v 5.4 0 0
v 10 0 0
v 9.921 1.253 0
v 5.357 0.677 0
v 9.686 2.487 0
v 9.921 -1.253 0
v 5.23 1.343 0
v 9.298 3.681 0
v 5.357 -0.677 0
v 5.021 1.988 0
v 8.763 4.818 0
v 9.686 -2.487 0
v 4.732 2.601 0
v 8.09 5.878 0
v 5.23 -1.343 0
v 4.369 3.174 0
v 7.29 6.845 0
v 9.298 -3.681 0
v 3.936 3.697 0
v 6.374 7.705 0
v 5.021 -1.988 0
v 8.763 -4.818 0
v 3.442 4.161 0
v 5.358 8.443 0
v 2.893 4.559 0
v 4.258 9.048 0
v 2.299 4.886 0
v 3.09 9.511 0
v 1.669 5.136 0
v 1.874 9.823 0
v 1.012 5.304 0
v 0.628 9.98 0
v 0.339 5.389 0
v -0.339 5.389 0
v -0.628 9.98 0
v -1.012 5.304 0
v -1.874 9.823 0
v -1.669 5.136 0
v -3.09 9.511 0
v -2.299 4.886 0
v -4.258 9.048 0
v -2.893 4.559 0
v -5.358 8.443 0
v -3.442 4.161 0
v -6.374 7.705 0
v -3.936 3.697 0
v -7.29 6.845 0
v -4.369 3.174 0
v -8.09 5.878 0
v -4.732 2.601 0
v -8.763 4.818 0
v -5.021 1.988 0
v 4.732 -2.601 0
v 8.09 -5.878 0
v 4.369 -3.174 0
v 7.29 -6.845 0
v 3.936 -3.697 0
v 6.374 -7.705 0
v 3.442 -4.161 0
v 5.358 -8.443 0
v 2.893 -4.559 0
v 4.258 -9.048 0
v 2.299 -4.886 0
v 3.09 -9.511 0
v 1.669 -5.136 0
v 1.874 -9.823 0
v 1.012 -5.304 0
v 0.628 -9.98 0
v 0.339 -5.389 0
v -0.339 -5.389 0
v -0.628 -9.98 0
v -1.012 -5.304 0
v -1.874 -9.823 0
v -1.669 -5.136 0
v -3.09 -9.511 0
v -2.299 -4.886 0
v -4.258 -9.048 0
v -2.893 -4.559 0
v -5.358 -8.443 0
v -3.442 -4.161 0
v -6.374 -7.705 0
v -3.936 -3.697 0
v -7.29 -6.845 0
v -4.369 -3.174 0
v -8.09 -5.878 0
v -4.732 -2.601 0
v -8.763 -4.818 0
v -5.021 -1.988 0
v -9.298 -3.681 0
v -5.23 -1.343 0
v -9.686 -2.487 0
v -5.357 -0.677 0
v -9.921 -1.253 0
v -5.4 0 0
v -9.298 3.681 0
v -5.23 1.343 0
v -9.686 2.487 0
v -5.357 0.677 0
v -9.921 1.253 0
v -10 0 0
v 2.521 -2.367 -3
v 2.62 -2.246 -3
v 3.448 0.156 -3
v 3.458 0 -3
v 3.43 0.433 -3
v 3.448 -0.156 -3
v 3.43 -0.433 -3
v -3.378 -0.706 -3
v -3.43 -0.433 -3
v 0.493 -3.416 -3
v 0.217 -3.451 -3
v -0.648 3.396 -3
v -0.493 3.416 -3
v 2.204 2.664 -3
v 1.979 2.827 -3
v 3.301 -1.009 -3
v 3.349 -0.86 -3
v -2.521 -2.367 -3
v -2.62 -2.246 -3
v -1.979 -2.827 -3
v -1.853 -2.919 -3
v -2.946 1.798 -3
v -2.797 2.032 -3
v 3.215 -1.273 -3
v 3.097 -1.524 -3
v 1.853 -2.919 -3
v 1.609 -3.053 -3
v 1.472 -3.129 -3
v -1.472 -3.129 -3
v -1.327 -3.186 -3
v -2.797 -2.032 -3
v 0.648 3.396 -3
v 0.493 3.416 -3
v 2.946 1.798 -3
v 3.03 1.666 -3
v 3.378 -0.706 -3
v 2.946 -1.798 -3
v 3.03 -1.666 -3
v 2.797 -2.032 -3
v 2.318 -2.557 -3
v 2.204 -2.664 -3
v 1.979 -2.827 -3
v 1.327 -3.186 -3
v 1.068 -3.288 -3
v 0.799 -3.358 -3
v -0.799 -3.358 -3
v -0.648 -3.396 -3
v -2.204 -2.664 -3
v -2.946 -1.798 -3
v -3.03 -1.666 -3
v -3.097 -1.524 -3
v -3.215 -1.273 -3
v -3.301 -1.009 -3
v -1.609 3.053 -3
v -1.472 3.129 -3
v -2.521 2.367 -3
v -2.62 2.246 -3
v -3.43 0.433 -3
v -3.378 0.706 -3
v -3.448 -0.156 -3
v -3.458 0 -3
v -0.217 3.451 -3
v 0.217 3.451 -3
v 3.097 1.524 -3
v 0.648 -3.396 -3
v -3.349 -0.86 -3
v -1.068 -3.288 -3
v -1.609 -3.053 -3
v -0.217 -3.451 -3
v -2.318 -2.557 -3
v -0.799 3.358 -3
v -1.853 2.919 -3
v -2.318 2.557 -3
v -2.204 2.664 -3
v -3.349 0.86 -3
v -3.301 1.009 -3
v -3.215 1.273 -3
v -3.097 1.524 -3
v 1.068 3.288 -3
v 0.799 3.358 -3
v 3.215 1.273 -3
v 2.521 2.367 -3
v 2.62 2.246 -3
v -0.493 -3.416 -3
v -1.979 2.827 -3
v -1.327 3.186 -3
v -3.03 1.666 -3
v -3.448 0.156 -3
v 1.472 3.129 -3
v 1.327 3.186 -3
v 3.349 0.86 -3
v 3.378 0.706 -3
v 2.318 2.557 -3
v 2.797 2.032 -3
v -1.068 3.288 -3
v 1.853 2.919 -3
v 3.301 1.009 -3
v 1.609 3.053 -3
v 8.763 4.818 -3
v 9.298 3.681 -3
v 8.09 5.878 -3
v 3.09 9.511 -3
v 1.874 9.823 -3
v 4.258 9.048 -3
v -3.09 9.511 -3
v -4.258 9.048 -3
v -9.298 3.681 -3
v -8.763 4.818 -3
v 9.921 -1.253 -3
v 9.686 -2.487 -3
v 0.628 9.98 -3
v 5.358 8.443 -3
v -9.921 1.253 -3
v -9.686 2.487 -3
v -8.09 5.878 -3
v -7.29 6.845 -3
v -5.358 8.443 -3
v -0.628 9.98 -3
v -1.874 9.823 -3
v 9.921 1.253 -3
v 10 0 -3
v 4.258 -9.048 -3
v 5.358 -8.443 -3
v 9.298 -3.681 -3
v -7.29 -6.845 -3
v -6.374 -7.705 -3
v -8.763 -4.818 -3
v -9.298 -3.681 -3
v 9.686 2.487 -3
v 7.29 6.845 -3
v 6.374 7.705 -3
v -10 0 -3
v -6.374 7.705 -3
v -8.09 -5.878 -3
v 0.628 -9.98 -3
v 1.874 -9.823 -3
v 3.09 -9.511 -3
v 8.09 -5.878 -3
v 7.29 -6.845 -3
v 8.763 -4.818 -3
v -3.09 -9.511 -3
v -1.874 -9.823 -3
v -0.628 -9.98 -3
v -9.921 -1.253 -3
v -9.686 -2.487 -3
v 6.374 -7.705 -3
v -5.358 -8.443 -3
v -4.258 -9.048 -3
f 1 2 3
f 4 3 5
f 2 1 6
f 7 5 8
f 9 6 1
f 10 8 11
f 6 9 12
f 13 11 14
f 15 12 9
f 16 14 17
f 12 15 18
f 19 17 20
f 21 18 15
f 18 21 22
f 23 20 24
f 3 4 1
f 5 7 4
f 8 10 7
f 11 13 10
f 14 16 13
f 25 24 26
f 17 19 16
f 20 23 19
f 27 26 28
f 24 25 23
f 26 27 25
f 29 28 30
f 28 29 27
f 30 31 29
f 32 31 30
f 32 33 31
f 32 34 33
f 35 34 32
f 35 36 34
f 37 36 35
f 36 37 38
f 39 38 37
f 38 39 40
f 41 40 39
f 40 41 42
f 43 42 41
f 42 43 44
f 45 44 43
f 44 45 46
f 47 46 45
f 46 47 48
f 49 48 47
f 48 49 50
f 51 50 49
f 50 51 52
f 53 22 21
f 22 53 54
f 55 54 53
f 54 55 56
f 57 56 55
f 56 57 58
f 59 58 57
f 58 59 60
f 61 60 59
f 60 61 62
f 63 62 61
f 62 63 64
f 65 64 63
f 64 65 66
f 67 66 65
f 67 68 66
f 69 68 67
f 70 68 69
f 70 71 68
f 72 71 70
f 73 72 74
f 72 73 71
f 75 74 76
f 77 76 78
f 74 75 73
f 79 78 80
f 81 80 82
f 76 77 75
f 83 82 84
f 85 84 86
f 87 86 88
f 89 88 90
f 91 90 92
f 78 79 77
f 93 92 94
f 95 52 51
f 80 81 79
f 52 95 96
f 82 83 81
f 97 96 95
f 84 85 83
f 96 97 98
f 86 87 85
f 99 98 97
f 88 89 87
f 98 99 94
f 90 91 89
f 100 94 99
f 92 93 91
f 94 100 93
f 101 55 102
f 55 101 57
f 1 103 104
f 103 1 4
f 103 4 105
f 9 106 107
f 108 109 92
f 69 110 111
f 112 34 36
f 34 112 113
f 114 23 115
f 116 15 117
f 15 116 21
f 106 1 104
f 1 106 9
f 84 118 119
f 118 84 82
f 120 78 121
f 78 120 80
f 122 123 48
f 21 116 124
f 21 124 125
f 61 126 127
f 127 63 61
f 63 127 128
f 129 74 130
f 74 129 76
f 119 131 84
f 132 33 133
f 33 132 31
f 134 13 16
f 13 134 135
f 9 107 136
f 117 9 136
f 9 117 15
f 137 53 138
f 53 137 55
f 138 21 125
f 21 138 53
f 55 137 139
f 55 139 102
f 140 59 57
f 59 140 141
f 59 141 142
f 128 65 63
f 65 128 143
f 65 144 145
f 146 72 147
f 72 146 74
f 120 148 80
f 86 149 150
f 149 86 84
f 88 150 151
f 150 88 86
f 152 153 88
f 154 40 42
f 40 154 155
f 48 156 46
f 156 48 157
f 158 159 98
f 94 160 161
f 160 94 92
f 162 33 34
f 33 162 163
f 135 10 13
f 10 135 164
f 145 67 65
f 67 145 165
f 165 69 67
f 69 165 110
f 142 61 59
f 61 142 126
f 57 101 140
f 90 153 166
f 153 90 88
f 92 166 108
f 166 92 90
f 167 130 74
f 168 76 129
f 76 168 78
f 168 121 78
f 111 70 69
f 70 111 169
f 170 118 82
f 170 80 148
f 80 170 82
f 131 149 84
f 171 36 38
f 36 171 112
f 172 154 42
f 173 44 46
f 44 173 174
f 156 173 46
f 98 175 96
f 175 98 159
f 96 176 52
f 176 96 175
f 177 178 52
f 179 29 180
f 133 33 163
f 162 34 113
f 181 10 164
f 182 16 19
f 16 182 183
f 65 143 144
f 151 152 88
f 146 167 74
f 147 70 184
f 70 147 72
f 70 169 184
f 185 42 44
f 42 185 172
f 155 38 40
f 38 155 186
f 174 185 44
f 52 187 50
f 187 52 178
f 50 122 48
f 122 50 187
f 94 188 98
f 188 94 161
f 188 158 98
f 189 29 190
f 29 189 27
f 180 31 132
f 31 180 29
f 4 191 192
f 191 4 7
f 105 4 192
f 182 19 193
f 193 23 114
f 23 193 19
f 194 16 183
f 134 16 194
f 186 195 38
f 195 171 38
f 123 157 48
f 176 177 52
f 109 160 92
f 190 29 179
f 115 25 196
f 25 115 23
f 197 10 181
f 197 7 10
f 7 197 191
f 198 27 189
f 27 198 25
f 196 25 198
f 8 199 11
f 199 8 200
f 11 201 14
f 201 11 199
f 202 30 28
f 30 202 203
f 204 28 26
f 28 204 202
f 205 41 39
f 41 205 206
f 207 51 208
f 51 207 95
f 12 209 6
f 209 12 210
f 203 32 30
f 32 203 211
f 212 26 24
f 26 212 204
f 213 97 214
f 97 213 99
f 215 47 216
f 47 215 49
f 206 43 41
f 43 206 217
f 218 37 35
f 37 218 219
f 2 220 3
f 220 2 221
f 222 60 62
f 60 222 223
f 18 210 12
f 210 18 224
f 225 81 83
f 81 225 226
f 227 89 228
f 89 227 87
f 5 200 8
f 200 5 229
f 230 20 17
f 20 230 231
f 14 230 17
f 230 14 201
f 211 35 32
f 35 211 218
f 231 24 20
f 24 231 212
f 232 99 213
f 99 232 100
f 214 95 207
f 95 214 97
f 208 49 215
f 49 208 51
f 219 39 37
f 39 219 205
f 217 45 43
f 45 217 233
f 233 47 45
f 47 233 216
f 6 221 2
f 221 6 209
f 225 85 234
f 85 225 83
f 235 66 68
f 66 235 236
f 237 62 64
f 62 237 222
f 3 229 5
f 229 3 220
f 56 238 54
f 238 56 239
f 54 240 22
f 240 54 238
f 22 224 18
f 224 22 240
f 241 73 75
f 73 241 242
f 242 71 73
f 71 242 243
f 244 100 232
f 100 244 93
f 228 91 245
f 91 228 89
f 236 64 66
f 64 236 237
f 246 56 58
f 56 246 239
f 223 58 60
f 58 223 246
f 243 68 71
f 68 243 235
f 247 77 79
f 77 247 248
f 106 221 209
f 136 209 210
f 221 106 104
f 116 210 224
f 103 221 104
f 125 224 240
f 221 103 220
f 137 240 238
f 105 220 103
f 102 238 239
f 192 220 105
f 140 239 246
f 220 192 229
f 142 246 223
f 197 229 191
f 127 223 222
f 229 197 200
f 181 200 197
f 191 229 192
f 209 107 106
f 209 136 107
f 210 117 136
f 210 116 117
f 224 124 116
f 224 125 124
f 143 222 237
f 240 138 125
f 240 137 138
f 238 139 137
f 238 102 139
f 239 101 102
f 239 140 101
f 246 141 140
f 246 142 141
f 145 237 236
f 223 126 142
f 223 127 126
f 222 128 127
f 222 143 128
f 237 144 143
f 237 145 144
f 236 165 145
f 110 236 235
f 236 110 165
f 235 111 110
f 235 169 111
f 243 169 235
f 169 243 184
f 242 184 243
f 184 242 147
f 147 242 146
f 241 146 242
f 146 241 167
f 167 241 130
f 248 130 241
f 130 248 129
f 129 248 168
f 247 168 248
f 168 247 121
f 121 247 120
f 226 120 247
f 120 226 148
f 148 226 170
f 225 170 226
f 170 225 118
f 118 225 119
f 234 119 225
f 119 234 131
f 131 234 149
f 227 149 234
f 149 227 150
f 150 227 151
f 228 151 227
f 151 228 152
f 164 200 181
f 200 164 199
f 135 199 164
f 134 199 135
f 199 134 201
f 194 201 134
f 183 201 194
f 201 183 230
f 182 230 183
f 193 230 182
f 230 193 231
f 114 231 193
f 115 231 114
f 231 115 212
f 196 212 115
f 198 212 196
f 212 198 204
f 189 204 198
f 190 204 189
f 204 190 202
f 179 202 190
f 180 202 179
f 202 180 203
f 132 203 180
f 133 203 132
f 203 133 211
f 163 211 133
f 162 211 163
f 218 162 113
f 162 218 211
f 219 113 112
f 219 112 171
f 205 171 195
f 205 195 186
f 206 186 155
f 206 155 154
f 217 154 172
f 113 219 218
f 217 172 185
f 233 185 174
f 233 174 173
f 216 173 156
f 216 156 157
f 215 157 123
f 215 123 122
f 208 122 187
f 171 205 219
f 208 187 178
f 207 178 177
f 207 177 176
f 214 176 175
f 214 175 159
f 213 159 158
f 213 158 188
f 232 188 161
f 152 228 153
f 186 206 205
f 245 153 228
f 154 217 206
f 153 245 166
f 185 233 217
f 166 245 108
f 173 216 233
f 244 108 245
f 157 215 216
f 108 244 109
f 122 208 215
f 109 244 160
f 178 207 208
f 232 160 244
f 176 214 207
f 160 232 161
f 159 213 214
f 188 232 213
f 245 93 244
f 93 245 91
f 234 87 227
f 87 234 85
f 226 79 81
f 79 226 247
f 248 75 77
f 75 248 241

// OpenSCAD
$fn = 50;


difference() {
	union() {
		translate(v = [0, 0, -3.0000000000]) {
			cylinder(h = 3, r = 10.0000000000);
		}
		cylinder(h = 0, r = 13.0000000000);
	}
	union() {
		translate(v = [0, 0, 0]) {
			rotate(a = [0, 0, 0]) {
				difference() {
					union() {
						#translate(v = [0, 0, -3.0000000000]) {
							cylinder(h = 3, r = 2.6000000000);
						}
						#translate(v = [0, 0, -3.9000000000]) {
							cylinder(h = 3.9000000000, r1 = 2.8750000000, r2 = 5.4000000000);
						}
						#translate(v = [0, 0, -3.0000000000]) {
							cylinder(h = 3, r = 2.8750000000);
						}
						#translate(v = [0, 0, -3.0000000000]) {
							cylinder(h = 3, r = 2.6000000000);
						}
					}
					union();
				}
			}
		}
	}
}
